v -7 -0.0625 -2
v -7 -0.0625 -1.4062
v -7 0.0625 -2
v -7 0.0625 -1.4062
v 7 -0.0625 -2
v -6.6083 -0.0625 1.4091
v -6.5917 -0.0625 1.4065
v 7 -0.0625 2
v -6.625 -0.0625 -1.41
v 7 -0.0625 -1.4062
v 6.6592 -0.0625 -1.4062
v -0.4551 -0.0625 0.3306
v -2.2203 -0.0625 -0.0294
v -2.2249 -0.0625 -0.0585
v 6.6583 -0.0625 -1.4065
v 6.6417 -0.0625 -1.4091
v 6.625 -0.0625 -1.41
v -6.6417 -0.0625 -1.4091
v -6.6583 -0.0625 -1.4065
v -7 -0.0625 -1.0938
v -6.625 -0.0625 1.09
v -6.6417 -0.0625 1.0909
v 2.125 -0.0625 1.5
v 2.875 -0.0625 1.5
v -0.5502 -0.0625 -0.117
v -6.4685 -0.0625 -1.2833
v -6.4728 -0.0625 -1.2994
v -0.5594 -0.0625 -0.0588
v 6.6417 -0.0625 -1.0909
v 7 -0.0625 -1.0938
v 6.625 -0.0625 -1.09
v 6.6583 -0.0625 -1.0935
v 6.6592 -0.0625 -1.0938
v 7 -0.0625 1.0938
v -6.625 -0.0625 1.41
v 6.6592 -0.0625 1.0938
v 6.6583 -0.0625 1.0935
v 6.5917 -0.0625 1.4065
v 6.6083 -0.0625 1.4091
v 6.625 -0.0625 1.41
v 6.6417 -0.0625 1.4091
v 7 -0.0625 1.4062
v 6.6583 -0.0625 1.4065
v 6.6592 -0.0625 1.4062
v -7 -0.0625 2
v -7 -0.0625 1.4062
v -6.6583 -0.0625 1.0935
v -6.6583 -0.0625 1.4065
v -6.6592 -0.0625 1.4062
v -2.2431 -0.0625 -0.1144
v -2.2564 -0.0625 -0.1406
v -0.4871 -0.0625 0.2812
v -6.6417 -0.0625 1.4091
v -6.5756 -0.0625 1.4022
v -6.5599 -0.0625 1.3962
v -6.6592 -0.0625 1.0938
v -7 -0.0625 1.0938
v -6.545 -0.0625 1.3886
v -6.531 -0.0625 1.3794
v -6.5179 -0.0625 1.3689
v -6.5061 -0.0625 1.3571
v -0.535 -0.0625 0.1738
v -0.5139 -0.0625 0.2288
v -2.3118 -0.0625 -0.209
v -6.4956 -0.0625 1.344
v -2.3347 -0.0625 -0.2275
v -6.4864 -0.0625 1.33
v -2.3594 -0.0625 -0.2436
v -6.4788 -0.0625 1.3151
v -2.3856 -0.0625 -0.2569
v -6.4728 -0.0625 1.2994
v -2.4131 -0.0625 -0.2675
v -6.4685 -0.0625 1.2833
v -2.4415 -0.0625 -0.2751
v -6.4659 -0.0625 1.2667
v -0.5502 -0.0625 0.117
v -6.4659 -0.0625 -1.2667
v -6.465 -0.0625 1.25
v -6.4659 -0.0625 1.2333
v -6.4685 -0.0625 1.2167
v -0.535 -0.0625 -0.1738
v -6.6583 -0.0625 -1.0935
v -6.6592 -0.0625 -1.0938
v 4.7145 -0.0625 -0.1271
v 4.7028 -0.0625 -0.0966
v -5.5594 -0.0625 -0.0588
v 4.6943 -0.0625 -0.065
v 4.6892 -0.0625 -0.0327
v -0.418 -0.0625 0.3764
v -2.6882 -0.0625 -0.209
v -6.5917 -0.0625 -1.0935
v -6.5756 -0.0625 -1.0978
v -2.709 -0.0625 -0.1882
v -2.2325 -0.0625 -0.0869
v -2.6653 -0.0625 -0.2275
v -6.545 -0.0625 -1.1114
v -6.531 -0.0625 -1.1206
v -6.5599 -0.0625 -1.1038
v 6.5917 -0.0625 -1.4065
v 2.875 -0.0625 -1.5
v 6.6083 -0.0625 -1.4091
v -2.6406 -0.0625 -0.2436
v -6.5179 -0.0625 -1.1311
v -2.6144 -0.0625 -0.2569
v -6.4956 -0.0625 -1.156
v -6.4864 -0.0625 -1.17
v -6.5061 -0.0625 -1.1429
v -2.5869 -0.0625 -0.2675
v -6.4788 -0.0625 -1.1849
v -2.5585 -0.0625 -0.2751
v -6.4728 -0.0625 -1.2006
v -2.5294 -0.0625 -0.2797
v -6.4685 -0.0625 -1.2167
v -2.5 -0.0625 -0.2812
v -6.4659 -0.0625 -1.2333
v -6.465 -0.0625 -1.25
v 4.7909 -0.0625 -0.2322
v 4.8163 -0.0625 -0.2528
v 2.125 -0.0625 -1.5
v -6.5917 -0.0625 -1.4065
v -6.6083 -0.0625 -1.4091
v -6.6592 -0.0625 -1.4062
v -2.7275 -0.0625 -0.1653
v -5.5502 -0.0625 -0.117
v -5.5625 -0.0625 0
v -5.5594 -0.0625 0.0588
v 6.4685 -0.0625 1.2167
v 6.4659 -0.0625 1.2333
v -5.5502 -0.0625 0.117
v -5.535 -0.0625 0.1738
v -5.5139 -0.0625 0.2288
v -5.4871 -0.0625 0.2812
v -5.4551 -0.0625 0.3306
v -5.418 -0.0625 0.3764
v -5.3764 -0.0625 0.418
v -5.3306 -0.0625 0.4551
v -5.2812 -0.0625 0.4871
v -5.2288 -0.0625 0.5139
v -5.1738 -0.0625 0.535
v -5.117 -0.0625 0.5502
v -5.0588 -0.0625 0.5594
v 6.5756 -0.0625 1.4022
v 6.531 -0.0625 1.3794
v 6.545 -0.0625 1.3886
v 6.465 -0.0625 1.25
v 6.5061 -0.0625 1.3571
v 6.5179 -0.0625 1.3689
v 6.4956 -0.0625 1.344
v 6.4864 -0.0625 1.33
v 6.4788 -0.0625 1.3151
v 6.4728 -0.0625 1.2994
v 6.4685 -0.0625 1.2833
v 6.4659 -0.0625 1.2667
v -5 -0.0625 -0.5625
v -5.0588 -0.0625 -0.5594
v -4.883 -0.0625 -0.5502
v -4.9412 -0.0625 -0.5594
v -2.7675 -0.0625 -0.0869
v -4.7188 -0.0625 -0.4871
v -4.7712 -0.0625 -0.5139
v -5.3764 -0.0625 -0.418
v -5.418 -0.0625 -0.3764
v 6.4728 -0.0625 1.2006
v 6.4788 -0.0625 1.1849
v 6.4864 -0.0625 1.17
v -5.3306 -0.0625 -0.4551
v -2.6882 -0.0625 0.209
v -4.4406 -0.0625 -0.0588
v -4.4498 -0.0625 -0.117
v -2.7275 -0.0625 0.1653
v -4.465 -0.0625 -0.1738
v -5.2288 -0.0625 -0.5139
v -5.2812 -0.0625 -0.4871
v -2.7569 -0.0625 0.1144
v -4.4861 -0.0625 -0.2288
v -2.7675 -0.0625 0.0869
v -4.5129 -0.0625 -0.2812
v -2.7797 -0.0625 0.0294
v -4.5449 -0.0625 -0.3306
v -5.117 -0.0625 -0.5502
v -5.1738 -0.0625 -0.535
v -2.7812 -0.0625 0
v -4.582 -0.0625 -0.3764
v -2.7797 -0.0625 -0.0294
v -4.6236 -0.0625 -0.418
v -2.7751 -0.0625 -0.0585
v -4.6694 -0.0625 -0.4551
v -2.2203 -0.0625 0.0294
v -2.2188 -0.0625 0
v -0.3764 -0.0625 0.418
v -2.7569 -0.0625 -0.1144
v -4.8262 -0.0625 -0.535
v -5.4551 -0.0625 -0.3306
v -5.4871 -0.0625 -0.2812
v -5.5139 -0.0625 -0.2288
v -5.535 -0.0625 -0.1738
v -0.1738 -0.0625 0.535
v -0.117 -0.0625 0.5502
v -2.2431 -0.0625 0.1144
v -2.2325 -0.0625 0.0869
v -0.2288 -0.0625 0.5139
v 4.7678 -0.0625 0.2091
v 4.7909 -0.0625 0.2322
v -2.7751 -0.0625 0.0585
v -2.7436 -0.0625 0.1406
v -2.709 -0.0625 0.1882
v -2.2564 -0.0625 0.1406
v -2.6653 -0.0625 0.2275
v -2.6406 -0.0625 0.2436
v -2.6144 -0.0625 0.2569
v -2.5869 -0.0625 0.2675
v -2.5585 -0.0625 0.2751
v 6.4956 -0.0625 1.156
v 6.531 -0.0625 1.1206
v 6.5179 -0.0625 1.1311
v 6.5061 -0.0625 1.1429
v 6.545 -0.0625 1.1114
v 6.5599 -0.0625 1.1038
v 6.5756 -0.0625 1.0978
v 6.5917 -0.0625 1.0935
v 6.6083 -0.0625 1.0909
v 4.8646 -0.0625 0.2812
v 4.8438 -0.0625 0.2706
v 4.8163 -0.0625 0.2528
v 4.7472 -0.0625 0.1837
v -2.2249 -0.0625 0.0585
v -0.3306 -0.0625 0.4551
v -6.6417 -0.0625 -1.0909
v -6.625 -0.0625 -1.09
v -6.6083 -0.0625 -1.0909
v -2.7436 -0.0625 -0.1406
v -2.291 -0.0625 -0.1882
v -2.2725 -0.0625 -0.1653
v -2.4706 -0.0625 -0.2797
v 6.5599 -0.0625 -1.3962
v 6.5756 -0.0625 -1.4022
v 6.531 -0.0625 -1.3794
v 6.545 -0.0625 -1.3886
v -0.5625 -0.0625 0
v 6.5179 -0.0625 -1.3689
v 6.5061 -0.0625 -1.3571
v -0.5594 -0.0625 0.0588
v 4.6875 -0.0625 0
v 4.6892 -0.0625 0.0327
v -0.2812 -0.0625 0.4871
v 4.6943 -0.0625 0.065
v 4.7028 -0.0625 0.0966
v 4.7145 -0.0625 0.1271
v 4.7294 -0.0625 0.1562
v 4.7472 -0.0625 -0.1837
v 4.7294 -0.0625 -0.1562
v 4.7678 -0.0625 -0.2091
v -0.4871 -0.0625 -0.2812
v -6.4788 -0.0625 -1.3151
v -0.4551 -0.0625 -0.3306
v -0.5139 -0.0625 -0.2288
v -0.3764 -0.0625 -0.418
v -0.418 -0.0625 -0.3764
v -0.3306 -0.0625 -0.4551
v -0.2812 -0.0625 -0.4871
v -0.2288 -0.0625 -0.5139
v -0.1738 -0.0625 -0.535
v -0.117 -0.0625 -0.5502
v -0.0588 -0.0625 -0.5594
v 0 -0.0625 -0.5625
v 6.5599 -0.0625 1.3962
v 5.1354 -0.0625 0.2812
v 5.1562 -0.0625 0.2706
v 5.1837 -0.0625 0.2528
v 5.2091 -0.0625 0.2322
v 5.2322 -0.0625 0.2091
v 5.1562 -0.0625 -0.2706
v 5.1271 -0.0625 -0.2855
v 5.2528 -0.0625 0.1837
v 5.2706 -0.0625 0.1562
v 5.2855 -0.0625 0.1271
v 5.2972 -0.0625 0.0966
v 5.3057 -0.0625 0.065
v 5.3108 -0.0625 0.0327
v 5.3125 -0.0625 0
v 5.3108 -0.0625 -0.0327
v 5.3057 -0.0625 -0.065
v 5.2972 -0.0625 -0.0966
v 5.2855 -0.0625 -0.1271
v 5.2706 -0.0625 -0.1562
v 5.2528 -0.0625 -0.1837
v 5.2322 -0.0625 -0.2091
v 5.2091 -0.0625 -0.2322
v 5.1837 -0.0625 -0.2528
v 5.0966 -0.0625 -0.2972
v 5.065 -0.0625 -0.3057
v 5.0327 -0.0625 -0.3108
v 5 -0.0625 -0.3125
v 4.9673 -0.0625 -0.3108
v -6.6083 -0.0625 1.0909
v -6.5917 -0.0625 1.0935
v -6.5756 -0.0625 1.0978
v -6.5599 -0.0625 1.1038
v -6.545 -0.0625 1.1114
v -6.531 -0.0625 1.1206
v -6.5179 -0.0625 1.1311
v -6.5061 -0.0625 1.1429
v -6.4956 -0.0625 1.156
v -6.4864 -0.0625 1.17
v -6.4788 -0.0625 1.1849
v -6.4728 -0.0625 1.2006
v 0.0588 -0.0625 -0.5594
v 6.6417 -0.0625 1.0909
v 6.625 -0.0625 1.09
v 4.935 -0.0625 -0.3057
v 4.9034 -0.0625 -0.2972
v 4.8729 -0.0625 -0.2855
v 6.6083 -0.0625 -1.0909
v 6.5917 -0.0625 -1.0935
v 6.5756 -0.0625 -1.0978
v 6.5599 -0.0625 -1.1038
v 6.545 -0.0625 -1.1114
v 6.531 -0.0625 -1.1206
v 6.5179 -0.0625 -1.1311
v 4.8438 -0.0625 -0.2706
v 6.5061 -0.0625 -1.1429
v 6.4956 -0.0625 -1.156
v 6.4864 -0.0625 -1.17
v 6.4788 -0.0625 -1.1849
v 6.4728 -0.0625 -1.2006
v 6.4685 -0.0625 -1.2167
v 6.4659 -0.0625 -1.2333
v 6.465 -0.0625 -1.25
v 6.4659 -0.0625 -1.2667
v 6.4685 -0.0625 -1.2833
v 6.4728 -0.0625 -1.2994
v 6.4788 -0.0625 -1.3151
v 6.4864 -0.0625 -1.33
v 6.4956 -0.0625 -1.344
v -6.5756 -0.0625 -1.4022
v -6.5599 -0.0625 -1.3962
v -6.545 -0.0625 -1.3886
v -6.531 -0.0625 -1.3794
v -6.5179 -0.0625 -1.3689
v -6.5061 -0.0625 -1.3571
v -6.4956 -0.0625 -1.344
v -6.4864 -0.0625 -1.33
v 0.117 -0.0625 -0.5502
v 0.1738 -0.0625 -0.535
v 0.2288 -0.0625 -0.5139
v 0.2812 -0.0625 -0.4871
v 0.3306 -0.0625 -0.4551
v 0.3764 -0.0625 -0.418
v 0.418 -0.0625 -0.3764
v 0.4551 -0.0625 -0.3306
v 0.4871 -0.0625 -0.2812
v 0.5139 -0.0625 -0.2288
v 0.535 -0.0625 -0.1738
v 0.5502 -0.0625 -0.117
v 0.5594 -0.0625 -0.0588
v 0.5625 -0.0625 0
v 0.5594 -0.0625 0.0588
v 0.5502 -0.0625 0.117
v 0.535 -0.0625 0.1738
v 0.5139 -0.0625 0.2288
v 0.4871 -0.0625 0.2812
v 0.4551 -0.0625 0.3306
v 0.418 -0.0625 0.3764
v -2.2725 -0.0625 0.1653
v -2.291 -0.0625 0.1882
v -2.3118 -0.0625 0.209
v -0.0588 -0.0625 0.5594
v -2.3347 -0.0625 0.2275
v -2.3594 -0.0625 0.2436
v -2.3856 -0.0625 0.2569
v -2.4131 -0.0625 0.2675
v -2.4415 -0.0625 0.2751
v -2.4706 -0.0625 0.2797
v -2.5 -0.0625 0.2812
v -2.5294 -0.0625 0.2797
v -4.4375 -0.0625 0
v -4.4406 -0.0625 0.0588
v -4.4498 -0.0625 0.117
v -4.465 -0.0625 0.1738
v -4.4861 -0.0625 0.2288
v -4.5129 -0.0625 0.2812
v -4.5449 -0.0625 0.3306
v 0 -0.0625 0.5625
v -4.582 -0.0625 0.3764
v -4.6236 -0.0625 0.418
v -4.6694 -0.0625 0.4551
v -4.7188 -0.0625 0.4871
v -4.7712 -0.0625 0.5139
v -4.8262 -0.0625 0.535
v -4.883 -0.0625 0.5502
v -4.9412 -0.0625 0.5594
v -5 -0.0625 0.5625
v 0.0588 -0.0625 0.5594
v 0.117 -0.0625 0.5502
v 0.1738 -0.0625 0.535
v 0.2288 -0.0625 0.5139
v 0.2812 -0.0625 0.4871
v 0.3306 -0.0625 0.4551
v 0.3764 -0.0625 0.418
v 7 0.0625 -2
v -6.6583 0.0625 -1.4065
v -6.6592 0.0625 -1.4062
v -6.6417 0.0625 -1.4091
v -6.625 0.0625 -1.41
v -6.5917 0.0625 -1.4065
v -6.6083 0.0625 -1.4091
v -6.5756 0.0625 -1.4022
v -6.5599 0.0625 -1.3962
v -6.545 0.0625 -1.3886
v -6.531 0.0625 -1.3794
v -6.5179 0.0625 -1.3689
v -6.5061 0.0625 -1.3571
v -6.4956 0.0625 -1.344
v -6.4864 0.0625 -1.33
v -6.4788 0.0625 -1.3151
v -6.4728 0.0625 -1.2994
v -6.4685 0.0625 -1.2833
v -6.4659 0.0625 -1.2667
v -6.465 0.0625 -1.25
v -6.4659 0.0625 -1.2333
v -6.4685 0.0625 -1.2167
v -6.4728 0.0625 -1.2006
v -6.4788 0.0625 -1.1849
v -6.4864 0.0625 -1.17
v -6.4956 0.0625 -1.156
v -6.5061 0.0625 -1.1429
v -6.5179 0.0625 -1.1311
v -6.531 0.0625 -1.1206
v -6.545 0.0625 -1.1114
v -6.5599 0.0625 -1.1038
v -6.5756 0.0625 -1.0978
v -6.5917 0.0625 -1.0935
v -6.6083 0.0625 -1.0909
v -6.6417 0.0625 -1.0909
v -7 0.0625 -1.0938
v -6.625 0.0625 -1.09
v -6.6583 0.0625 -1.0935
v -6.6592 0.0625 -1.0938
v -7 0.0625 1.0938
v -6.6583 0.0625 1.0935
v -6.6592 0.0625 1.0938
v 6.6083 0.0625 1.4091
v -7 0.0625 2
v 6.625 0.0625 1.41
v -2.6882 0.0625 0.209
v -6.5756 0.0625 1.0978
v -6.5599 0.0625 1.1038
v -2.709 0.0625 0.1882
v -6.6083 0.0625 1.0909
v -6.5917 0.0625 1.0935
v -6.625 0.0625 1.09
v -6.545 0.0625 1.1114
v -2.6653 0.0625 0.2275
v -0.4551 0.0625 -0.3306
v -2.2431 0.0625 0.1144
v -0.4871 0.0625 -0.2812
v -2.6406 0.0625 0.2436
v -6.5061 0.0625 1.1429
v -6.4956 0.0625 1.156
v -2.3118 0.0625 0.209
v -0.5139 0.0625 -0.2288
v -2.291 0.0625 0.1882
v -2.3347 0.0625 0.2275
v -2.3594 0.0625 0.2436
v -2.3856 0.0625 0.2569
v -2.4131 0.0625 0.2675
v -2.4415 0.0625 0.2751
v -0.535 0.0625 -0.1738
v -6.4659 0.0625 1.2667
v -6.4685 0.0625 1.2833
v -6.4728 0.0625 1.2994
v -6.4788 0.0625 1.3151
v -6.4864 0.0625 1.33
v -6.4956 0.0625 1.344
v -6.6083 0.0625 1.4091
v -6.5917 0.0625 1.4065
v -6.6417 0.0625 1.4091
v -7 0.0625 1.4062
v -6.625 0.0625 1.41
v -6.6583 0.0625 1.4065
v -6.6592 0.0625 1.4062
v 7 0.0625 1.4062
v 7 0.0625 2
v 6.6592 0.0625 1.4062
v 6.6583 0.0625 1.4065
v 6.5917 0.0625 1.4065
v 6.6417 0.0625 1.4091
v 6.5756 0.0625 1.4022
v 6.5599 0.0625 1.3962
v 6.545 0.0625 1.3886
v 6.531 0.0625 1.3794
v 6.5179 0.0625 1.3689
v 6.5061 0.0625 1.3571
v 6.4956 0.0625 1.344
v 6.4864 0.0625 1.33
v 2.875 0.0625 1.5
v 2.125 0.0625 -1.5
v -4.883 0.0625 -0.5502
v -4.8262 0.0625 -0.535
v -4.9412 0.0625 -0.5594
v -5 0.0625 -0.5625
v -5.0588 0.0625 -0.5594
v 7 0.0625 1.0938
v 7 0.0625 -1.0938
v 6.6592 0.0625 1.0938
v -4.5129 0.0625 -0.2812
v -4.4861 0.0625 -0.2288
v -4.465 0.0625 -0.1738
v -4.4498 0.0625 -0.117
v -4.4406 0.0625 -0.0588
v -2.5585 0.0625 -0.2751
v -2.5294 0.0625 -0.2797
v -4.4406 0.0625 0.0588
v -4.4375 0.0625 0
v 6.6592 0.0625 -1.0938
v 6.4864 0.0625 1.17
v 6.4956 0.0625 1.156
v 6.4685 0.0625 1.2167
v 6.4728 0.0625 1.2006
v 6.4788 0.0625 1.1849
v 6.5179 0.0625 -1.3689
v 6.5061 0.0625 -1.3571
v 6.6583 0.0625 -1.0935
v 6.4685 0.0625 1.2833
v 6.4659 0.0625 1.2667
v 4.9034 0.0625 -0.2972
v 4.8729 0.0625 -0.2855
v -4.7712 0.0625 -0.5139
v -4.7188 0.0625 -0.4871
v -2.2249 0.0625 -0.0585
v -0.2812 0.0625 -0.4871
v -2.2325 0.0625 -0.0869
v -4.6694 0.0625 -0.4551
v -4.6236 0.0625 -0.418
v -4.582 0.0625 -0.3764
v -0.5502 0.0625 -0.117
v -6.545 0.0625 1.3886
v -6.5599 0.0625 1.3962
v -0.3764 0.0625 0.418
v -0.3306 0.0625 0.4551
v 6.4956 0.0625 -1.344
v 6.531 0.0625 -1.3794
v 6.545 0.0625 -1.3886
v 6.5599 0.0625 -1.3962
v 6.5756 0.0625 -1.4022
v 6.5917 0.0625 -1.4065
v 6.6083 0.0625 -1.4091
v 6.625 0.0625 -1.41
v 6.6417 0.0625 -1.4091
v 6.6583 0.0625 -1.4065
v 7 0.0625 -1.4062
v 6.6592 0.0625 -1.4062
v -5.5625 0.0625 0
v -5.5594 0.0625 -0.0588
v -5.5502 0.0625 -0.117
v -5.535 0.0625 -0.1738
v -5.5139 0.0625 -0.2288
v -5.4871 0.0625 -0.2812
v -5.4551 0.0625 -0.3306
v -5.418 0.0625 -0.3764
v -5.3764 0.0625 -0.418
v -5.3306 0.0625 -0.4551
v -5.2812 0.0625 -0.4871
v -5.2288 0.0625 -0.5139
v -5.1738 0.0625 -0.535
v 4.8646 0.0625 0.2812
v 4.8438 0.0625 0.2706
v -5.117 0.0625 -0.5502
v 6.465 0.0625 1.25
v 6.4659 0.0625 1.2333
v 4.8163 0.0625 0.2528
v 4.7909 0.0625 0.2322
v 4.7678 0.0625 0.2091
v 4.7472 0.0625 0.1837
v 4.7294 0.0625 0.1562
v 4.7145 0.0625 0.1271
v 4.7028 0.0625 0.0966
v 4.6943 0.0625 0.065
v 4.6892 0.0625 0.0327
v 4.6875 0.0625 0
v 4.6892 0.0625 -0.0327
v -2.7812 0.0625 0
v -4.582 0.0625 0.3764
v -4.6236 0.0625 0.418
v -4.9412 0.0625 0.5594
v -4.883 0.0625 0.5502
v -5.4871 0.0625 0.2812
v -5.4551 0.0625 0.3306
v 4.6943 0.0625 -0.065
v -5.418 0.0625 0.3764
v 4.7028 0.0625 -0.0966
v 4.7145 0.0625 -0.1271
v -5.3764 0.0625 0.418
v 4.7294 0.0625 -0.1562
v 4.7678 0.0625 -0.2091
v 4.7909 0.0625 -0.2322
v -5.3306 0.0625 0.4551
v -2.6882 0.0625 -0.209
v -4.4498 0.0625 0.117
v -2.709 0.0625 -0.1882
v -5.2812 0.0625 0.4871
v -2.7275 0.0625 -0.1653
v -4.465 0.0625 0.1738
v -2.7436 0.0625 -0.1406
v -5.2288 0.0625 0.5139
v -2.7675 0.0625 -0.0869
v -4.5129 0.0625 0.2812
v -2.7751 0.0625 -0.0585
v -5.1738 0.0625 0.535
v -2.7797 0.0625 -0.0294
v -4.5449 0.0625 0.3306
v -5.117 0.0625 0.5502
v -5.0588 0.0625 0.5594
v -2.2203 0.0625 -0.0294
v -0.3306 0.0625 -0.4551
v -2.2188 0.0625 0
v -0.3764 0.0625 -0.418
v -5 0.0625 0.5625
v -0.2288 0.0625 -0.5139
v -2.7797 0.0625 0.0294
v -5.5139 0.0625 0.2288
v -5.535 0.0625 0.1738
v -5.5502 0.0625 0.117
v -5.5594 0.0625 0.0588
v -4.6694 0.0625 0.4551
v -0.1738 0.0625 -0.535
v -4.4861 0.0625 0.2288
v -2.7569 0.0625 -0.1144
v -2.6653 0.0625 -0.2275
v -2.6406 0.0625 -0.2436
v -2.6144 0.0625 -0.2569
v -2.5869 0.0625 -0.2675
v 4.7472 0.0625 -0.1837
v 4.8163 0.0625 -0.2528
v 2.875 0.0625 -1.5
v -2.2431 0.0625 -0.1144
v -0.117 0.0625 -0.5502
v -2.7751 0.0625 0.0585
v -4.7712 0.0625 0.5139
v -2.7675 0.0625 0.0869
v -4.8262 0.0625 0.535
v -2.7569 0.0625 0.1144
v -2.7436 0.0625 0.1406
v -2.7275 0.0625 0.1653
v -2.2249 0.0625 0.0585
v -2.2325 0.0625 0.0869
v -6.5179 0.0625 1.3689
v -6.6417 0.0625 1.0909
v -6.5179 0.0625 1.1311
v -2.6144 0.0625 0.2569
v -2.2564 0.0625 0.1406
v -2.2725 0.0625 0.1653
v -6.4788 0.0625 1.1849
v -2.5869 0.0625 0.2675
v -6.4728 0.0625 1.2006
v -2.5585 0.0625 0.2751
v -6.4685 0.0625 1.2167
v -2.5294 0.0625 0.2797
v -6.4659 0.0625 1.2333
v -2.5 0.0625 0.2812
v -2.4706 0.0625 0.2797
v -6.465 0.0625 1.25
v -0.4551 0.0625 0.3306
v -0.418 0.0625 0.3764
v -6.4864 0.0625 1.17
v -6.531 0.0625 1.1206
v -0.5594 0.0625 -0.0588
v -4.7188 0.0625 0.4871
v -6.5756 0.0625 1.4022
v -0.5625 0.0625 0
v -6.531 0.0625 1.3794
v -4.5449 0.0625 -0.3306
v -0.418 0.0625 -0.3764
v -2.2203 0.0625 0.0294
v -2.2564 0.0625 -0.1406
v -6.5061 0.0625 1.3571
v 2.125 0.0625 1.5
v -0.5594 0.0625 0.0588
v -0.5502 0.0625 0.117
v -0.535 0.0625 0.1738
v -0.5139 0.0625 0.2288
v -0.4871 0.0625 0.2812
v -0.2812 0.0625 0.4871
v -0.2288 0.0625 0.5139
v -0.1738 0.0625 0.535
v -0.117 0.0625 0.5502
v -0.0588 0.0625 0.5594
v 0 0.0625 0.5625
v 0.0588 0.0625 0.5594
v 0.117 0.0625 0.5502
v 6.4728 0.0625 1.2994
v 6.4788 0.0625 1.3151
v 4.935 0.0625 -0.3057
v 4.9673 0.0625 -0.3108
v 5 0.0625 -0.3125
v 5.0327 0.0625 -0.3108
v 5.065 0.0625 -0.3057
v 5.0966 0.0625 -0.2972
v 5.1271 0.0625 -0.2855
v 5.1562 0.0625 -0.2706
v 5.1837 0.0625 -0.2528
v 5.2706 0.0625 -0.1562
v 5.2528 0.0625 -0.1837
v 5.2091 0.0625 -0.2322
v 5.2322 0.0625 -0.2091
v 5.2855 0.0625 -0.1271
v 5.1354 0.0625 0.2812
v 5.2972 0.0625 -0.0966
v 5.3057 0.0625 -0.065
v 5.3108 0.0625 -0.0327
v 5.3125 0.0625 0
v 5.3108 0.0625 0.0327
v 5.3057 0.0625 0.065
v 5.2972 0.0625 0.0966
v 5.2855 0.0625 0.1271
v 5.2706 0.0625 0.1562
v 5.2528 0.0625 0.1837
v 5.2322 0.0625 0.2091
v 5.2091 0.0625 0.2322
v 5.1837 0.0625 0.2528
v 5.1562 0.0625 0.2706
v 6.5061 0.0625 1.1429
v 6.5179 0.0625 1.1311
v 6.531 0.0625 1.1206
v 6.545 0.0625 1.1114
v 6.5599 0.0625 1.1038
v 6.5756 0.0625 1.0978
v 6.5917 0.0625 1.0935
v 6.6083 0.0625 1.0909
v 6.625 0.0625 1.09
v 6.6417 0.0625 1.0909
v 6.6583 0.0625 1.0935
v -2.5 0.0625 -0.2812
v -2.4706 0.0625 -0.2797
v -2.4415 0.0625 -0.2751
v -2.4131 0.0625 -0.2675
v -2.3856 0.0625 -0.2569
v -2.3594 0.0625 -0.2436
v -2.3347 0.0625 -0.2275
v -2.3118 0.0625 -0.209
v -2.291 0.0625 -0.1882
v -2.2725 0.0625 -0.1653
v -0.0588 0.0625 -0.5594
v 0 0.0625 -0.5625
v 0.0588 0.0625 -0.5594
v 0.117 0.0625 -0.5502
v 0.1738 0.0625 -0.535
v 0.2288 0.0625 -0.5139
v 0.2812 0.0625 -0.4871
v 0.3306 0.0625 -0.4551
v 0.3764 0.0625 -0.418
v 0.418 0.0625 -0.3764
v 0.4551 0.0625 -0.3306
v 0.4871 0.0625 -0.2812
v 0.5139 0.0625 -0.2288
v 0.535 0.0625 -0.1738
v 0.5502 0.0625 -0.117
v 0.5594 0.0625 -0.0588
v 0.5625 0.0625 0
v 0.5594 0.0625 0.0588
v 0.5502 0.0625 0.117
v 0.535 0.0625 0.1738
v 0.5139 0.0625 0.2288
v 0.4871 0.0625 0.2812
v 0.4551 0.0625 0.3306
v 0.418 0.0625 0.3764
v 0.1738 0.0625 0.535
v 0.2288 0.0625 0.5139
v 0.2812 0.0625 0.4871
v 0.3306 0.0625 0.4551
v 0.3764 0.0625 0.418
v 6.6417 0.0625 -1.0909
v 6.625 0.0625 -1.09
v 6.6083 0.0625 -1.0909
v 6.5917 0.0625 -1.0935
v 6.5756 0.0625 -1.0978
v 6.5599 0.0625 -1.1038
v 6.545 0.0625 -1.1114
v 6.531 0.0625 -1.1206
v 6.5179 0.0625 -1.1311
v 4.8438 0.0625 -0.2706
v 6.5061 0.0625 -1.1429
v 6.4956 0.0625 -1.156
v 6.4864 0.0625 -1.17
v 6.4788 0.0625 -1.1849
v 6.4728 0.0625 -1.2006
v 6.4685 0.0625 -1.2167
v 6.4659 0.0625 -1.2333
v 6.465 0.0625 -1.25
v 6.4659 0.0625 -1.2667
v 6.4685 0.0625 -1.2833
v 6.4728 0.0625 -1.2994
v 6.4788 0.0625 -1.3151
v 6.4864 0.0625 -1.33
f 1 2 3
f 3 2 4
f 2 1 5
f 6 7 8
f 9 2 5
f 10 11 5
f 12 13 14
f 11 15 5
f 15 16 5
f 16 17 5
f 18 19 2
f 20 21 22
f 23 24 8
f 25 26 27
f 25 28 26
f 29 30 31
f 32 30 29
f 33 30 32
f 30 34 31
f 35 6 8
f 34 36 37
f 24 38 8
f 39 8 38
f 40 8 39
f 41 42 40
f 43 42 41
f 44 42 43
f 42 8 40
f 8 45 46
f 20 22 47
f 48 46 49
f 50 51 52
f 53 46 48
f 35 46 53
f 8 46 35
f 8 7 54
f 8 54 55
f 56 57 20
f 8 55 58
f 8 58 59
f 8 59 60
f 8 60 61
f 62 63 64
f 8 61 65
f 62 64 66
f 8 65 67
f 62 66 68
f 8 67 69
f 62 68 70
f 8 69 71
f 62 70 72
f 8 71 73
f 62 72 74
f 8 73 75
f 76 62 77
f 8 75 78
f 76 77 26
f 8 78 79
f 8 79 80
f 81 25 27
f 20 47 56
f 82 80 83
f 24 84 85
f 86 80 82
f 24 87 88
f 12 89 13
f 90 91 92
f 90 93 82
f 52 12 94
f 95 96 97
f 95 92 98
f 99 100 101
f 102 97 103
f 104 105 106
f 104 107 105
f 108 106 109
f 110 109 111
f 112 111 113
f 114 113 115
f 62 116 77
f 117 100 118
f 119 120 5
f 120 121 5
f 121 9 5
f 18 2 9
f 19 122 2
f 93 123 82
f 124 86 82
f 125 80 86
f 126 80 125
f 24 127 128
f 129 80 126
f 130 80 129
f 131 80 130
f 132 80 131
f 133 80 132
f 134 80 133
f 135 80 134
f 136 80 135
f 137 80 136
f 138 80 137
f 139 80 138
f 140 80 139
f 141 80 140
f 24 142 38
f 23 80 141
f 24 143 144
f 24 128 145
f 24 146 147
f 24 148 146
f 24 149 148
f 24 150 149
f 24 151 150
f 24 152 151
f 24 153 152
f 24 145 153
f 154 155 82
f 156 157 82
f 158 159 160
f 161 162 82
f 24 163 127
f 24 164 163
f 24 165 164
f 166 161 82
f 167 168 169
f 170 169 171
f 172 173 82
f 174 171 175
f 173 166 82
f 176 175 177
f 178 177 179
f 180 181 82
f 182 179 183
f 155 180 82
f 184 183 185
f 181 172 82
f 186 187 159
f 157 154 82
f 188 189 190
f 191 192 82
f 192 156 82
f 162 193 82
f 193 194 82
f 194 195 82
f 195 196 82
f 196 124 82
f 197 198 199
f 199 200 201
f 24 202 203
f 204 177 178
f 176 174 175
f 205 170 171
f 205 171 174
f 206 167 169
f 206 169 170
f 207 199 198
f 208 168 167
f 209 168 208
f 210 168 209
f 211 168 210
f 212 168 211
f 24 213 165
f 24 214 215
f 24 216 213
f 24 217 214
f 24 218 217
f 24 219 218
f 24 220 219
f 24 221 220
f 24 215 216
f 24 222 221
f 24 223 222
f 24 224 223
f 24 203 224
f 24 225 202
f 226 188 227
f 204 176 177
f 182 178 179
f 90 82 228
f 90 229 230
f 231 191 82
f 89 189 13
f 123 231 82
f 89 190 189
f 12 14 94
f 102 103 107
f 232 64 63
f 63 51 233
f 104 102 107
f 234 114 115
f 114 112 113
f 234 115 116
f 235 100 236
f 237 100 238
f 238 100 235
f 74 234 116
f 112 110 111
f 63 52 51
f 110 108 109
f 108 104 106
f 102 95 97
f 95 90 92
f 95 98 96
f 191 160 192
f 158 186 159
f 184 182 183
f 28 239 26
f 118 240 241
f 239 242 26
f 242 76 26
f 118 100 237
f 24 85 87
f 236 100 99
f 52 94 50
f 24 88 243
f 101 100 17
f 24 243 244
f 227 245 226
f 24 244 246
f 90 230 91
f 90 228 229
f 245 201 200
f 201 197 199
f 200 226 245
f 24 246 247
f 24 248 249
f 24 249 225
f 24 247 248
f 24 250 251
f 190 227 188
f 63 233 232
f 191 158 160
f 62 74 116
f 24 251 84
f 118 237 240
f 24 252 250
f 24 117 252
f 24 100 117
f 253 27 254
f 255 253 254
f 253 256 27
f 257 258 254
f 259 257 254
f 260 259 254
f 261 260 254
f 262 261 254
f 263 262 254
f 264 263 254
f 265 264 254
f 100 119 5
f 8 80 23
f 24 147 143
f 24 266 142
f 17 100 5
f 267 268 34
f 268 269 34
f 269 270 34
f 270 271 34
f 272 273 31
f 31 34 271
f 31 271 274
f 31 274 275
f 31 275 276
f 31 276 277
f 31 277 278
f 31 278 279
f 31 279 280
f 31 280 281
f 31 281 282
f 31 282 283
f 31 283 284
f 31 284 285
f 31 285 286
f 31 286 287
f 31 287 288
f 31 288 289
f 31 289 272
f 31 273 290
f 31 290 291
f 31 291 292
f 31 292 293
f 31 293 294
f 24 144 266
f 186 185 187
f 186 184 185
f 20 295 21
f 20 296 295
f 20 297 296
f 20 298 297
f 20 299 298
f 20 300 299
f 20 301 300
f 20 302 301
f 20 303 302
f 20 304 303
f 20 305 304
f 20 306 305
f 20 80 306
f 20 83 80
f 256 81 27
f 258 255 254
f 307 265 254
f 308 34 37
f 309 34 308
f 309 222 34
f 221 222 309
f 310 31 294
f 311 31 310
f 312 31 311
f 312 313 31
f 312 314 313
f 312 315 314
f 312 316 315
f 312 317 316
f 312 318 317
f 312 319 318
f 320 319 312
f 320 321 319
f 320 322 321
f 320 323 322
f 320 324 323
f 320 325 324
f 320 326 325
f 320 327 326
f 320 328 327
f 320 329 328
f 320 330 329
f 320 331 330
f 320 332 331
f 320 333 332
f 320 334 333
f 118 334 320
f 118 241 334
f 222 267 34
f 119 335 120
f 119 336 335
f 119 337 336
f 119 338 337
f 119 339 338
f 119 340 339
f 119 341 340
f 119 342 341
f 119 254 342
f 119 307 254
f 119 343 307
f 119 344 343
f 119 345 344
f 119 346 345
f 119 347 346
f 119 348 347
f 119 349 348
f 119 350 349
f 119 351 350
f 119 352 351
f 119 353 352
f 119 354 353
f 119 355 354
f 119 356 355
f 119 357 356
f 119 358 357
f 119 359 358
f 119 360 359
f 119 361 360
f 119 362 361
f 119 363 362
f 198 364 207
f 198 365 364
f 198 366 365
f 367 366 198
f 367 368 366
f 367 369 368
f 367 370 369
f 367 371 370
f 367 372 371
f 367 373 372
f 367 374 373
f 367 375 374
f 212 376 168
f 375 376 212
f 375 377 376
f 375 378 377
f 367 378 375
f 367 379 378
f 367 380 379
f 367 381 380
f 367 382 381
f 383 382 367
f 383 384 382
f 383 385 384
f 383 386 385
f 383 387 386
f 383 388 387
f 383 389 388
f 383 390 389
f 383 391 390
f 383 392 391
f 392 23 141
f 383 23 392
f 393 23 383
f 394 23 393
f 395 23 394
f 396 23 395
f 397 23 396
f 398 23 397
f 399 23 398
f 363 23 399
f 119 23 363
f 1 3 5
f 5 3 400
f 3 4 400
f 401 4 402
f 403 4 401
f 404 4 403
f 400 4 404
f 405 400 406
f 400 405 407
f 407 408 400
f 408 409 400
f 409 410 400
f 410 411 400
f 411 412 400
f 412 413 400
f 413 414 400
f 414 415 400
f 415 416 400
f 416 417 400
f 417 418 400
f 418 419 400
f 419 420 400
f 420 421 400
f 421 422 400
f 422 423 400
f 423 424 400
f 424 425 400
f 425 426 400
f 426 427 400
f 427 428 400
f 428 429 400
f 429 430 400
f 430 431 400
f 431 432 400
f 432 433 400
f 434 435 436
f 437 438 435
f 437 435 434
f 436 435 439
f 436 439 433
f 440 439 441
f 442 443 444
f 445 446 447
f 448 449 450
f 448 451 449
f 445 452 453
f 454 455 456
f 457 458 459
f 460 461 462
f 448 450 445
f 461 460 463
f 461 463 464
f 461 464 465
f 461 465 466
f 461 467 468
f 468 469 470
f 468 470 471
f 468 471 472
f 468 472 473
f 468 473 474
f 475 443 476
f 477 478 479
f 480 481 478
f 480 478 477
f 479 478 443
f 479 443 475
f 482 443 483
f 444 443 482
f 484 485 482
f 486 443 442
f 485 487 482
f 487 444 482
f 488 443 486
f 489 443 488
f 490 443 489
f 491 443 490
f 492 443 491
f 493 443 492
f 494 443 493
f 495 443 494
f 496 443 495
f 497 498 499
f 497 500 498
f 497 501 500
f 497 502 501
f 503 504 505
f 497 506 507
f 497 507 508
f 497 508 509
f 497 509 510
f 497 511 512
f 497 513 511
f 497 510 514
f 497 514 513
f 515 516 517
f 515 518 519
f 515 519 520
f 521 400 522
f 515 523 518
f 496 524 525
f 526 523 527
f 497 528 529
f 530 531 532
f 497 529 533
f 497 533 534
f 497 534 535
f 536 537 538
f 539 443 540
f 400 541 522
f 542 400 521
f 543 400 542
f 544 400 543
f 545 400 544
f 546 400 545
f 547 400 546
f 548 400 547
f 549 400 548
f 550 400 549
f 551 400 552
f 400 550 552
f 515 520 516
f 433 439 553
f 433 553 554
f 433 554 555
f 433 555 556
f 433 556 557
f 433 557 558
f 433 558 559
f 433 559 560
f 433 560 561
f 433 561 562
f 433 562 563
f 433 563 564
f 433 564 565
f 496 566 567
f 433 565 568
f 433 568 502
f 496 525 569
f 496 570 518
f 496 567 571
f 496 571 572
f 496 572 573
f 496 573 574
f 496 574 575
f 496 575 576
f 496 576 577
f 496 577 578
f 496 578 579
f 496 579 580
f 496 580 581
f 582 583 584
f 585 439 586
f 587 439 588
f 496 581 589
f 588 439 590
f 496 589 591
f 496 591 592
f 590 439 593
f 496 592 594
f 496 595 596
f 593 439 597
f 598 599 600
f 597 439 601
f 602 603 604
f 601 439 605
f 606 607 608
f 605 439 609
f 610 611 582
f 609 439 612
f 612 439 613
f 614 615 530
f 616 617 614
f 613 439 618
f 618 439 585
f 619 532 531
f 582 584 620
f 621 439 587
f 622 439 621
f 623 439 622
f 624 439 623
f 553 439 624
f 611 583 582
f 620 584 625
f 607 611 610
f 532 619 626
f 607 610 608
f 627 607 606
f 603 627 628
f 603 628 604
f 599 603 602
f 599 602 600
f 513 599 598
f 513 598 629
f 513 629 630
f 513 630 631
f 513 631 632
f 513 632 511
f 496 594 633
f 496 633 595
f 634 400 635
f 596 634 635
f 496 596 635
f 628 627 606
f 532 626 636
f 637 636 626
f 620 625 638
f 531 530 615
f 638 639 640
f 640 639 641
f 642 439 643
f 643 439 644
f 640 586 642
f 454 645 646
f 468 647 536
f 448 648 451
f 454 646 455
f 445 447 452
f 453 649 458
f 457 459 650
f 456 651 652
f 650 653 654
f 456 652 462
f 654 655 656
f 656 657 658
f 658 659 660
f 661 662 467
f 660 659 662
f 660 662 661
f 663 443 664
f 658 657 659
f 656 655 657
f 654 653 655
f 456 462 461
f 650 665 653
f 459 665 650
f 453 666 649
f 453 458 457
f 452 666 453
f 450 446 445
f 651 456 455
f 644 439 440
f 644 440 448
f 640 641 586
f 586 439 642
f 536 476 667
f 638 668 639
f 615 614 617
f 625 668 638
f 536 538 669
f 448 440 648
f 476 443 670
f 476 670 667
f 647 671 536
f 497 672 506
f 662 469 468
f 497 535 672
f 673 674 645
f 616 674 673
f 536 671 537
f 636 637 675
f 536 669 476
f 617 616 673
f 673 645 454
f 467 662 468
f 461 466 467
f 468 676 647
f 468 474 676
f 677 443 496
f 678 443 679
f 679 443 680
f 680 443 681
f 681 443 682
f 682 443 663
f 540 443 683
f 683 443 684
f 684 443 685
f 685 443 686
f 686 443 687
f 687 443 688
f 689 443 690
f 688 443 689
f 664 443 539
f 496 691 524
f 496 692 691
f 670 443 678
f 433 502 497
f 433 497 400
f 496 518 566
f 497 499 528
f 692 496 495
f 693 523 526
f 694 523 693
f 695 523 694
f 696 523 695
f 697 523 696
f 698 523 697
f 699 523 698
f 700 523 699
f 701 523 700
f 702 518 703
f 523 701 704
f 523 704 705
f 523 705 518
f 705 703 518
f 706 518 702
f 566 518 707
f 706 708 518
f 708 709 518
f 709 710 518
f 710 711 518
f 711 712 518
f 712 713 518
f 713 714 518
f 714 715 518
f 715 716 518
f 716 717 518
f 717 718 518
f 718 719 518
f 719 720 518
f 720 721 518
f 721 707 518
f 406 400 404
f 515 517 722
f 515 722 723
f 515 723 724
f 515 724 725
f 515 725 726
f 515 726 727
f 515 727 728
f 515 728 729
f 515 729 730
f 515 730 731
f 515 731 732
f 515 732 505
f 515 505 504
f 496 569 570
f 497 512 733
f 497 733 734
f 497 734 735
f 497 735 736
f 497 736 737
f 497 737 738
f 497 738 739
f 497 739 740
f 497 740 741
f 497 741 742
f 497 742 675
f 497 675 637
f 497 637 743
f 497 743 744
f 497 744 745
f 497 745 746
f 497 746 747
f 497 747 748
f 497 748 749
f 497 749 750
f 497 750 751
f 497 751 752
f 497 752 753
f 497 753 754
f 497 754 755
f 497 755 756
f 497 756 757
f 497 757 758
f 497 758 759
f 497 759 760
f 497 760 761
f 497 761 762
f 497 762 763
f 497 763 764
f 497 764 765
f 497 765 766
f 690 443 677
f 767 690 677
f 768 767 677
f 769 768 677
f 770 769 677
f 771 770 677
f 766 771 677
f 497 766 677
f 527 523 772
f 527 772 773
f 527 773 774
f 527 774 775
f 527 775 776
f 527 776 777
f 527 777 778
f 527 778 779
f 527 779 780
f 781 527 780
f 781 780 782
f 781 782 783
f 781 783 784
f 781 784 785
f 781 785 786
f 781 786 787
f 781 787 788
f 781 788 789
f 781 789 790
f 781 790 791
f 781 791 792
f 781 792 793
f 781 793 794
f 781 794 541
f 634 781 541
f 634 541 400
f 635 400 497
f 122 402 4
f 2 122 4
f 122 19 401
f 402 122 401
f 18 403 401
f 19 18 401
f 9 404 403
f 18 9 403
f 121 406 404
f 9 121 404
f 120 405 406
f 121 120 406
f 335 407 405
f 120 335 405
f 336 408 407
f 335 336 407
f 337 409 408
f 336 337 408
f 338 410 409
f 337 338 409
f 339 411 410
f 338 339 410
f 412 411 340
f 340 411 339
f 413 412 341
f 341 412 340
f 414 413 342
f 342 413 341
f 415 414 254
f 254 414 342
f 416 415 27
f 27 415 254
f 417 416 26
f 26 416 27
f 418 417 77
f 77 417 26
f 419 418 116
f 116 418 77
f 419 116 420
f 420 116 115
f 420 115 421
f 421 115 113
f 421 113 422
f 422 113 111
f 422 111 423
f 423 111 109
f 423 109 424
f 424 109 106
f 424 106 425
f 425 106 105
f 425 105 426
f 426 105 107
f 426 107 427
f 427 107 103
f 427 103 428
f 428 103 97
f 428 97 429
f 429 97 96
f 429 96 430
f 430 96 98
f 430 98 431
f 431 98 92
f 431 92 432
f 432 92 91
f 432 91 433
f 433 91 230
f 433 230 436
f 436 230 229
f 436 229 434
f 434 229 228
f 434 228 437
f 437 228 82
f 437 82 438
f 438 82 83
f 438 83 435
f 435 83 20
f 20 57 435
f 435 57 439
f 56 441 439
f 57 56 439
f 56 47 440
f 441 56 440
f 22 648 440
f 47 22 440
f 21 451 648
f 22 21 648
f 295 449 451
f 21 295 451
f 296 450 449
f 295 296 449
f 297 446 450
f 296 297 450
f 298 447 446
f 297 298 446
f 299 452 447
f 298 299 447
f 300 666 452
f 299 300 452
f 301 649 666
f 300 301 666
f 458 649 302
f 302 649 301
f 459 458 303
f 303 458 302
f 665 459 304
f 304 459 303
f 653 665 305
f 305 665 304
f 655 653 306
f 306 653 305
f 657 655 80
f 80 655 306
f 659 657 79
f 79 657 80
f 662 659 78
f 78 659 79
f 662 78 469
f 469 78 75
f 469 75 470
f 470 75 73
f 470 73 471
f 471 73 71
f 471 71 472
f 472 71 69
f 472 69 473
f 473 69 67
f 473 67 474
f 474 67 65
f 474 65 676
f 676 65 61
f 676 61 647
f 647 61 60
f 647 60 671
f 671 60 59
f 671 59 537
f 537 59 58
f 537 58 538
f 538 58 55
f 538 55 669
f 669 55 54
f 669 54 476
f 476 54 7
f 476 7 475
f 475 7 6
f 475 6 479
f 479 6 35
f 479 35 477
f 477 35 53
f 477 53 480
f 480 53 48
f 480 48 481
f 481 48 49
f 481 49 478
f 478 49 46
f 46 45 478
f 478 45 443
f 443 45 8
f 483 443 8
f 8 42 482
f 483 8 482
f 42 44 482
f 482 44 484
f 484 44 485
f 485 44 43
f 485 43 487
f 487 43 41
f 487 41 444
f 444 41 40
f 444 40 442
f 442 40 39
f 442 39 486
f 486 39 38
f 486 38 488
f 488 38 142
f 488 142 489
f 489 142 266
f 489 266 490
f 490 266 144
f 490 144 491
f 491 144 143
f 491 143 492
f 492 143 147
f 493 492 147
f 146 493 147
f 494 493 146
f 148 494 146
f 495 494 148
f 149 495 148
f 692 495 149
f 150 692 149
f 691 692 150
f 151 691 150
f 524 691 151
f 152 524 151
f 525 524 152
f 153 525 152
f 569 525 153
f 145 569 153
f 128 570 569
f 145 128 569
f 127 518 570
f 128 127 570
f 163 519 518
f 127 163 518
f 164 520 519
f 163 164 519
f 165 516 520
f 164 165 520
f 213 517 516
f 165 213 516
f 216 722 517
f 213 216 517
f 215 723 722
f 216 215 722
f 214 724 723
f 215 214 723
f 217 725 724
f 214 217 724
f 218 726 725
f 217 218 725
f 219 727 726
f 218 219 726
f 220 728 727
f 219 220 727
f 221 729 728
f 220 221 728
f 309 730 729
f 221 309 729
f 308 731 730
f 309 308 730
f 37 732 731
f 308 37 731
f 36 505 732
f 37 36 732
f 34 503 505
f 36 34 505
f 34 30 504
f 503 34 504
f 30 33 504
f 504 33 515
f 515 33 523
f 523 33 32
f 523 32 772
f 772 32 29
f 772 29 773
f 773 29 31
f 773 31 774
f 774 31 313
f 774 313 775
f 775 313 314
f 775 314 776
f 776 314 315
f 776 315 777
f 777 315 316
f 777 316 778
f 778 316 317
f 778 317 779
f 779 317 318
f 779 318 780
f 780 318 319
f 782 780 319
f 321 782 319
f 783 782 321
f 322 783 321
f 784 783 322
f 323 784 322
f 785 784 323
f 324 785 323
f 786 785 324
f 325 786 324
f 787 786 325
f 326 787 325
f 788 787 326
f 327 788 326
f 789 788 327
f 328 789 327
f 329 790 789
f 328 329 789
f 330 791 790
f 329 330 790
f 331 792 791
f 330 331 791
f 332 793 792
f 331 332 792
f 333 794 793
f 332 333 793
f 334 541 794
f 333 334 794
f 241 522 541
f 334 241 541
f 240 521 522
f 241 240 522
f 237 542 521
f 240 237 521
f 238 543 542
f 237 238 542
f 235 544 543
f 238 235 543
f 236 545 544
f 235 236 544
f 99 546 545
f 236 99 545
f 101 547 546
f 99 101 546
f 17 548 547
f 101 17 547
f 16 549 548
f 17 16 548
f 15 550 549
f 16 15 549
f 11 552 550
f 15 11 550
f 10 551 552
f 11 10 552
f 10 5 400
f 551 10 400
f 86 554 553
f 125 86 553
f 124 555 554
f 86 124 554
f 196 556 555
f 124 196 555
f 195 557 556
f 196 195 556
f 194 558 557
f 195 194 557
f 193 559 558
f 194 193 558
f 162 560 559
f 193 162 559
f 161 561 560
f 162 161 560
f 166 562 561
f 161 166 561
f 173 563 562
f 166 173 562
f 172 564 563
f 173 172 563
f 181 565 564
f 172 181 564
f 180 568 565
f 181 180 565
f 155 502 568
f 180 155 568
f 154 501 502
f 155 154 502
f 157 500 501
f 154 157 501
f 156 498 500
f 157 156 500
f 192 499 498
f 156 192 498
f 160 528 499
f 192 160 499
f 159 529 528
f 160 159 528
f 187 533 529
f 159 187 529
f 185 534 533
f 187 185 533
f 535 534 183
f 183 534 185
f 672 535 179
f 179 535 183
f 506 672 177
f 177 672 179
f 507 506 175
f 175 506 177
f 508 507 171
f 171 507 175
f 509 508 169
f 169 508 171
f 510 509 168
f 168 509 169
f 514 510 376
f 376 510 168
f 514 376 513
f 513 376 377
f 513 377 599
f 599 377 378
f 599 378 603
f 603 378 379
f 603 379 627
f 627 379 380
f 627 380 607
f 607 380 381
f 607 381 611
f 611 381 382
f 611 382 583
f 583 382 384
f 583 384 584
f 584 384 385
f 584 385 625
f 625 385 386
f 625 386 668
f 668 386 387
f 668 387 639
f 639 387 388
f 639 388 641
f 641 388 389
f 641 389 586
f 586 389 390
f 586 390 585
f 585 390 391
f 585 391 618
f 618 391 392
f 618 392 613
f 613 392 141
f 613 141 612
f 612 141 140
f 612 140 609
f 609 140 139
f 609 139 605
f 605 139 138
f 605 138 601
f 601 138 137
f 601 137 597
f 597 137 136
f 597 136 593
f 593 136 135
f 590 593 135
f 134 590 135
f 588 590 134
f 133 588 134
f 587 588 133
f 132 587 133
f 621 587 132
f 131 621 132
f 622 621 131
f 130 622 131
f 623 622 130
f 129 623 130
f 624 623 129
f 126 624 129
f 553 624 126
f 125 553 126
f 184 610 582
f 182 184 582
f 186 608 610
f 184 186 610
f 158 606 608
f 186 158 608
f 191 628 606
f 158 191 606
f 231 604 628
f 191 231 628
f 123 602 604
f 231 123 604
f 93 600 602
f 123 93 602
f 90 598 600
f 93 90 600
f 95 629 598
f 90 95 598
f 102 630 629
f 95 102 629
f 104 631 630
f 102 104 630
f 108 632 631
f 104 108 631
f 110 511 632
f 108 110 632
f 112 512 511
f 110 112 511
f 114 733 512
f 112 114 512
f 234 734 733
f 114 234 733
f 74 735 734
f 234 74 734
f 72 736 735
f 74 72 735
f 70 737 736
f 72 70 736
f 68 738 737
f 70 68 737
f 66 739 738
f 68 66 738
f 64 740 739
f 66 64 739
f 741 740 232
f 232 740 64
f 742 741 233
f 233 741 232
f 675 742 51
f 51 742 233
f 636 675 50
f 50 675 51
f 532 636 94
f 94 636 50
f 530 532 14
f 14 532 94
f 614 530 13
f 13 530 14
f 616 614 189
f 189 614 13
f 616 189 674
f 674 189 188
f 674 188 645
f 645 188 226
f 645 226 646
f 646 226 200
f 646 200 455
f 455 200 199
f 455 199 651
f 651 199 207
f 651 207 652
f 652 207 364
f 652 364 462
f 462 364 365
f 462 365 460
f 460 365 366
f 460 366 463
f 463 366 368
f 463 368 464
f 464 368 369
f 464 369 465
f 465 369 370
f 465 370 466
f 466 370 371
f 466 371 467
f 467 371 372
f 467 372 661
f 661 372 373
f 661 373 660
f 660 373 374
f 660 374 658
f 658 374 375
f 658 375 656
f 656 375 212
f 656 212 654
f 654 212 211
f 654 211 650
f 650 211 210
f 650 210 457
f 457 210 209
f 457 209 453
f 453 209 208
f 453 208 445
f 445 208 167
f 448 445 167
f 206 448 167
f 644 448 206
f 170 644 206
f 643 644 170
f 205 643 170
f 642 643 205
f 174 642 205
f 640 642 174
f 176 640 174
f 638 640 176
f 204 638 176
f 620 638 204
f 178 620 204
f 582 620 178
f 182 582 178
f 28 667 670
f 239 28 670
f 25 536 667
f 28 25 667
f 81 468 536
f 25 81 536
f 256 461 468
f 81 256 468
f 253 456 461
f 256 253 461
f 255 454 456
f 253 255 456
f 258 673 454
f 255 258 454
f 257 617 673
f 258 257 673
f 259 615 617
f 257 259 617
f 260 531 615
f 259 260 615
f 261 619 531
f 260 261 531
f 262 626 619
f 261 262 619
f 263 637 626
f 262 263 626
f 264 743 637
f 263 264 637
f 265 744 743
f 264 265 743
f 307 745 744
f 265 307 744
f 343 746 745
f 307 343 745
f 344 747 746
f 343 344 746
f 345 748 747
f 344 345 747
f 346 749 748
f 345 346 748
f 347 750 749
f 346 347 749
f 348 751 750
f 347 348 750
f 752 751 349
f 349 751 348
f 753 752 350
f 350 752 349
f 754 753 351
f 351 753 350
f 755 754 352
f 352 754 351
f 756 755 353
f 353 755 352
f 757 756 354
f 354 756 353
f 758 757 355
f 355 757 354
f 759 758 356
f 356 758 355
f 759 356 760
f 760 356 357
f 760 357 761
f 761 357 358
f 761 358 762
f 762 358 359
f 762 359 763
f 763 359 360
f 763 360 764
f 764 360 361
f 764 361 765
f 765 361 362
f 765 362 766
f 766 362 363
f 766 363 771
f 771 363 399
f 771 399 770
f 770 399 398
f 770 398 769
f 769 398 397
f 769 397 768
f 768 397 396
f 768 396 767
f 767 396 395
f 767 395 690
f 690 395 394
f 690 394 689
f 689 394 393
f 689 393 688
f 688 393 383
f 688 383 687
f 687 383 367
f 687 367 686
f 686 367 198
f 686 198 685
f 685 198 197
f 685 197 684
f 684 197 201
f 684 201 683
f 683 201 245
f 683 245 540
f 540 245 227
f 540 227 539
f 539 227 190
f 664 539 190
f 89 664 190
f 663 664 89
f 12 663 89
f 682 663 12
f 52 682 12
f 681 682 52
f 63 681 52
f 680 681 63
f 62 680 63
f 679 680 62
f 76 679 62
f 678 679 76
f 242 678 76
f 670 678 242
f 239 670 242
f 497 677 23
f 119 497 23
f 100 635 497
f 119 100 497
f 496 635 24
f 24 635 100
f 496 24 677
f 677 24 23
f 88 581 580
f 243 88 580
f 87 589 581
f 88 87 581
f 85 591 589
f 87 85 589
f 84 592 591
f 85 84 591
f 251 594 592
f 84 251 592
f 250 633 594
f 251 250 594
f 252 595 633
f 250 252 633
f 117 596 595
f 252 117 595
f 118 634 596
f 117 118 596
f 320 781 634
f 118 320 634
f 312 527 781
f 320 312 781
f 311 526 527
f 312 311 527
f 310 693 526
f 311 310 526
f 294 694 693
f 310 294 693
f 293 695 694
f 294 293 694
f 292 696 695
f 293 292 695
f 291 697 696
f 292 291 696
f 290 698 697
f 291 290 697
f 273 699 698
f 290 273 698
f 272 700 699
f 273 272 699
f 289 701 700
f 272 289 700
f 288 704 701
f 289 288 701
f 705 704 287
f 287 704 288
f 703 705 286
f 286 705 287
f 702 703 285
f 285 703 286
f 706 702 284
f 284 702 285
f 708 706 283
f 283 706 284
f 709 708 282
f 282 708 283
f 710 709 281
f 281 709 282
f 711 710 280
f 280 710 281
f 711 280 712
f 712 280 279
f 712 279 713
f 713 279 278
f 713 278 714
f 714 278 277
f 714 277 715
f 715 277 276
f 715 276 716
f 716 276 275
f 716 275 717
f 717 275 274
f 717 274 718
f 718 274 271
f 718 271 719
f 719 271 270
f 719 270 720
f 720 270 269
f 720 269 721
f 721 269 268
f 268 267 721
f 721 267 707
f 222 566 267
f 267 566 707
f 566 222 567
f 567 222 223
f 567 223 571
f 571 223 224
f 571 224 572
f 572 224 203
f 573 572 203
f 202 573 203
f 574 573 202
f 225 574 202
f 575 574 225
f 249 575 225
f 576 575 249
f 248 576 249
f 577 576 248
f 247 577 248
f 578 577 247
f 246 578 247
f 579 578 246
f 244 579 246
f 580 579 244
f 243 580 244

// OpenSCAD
module controlpanel()
{
	/*
		Control Panel for the OSE GVCS PowerCube v6
		http://opensourceecology.org/wiki/Power_Cube_VI

		Interpreted from Sketchup by Daniel Epperson. 
		All measurements are in inches (not mm).

		CC-BY-SA
	 */
	difference() 
	{
		cube([14, 0.125, 4], center = true);

		// return
		translate([-5, 1, 0]) 
		{
			rotate([90,0,0]) { cylinder(r=0.5625, h=2, $fn=60); }
		}

		// tank
		translate([-2.5, 1, 0]) 
		{
			rotate([90,0,0]) { cylinder(r=0.28125, h=2, $fn=60); }
		}

		// supply
		translate([0,1,0]) { rotate([90,0,0]) { cylinder(r=0.5625, h=2, $fn=60); } }

		// throttle
		translate([2.5, 0, 0]) 
		{
			cube([0.75, 1, 3], center = true);
		}

		// key with notch
		translate([5, 1, 0]) 
		{
			difference() 
			{
				rotate([90,0,0]) { cylinder(r=0.3125, h=2, $fn=60); }
				translate([0, 0, 0.78125])
				{
					cube([2, 4.1, 1], center = true);
				}
			}
		}

		// mounting tabs TL
		translate([-6.813, 0, 1.25]) 
		{
			cube([0.375, 1, 0.3125], center = true);
		}
		translate([-6.625, 1, 1.25]) 
		{
			rotate([90,0,0]) { cylinder(r=0.16, h=2, $fn=60); }
		}

		// mounting tabs BL
		translate([-6.813, 0, -1.25]) 
		{
			cube([0.375, 1, 0.3125], center = true);
		}
		translate([-6.625, 1, -1.25]) 
		{
			rotate([90,0,0]) { cylinder(r=0.16, h=2, $fn=60); }
		}

		// mounting tabs TR
		translate([6.813, 0, 1.25]) 
		{
			cube([0.375, 1, 0.3125], center = true);
		}
		translate([6.625, 1, 1.25]) 
		{
			rotate([90,0,0]) { cylinder(r=0.16, h=2, $fn=60); }
		}

		// mounting tabs BR
		translate([6.813, 0, -1.25]) 
		{
			cube([0.375, 1, 0.3125], center = true);
		}
		translate([6.625, 1, -1.25]) 
		{
			rotate([90,0,0]) { cylinder(r=0.16, h=2, $fn=60); }
		}


	}
}
controlpanel();
